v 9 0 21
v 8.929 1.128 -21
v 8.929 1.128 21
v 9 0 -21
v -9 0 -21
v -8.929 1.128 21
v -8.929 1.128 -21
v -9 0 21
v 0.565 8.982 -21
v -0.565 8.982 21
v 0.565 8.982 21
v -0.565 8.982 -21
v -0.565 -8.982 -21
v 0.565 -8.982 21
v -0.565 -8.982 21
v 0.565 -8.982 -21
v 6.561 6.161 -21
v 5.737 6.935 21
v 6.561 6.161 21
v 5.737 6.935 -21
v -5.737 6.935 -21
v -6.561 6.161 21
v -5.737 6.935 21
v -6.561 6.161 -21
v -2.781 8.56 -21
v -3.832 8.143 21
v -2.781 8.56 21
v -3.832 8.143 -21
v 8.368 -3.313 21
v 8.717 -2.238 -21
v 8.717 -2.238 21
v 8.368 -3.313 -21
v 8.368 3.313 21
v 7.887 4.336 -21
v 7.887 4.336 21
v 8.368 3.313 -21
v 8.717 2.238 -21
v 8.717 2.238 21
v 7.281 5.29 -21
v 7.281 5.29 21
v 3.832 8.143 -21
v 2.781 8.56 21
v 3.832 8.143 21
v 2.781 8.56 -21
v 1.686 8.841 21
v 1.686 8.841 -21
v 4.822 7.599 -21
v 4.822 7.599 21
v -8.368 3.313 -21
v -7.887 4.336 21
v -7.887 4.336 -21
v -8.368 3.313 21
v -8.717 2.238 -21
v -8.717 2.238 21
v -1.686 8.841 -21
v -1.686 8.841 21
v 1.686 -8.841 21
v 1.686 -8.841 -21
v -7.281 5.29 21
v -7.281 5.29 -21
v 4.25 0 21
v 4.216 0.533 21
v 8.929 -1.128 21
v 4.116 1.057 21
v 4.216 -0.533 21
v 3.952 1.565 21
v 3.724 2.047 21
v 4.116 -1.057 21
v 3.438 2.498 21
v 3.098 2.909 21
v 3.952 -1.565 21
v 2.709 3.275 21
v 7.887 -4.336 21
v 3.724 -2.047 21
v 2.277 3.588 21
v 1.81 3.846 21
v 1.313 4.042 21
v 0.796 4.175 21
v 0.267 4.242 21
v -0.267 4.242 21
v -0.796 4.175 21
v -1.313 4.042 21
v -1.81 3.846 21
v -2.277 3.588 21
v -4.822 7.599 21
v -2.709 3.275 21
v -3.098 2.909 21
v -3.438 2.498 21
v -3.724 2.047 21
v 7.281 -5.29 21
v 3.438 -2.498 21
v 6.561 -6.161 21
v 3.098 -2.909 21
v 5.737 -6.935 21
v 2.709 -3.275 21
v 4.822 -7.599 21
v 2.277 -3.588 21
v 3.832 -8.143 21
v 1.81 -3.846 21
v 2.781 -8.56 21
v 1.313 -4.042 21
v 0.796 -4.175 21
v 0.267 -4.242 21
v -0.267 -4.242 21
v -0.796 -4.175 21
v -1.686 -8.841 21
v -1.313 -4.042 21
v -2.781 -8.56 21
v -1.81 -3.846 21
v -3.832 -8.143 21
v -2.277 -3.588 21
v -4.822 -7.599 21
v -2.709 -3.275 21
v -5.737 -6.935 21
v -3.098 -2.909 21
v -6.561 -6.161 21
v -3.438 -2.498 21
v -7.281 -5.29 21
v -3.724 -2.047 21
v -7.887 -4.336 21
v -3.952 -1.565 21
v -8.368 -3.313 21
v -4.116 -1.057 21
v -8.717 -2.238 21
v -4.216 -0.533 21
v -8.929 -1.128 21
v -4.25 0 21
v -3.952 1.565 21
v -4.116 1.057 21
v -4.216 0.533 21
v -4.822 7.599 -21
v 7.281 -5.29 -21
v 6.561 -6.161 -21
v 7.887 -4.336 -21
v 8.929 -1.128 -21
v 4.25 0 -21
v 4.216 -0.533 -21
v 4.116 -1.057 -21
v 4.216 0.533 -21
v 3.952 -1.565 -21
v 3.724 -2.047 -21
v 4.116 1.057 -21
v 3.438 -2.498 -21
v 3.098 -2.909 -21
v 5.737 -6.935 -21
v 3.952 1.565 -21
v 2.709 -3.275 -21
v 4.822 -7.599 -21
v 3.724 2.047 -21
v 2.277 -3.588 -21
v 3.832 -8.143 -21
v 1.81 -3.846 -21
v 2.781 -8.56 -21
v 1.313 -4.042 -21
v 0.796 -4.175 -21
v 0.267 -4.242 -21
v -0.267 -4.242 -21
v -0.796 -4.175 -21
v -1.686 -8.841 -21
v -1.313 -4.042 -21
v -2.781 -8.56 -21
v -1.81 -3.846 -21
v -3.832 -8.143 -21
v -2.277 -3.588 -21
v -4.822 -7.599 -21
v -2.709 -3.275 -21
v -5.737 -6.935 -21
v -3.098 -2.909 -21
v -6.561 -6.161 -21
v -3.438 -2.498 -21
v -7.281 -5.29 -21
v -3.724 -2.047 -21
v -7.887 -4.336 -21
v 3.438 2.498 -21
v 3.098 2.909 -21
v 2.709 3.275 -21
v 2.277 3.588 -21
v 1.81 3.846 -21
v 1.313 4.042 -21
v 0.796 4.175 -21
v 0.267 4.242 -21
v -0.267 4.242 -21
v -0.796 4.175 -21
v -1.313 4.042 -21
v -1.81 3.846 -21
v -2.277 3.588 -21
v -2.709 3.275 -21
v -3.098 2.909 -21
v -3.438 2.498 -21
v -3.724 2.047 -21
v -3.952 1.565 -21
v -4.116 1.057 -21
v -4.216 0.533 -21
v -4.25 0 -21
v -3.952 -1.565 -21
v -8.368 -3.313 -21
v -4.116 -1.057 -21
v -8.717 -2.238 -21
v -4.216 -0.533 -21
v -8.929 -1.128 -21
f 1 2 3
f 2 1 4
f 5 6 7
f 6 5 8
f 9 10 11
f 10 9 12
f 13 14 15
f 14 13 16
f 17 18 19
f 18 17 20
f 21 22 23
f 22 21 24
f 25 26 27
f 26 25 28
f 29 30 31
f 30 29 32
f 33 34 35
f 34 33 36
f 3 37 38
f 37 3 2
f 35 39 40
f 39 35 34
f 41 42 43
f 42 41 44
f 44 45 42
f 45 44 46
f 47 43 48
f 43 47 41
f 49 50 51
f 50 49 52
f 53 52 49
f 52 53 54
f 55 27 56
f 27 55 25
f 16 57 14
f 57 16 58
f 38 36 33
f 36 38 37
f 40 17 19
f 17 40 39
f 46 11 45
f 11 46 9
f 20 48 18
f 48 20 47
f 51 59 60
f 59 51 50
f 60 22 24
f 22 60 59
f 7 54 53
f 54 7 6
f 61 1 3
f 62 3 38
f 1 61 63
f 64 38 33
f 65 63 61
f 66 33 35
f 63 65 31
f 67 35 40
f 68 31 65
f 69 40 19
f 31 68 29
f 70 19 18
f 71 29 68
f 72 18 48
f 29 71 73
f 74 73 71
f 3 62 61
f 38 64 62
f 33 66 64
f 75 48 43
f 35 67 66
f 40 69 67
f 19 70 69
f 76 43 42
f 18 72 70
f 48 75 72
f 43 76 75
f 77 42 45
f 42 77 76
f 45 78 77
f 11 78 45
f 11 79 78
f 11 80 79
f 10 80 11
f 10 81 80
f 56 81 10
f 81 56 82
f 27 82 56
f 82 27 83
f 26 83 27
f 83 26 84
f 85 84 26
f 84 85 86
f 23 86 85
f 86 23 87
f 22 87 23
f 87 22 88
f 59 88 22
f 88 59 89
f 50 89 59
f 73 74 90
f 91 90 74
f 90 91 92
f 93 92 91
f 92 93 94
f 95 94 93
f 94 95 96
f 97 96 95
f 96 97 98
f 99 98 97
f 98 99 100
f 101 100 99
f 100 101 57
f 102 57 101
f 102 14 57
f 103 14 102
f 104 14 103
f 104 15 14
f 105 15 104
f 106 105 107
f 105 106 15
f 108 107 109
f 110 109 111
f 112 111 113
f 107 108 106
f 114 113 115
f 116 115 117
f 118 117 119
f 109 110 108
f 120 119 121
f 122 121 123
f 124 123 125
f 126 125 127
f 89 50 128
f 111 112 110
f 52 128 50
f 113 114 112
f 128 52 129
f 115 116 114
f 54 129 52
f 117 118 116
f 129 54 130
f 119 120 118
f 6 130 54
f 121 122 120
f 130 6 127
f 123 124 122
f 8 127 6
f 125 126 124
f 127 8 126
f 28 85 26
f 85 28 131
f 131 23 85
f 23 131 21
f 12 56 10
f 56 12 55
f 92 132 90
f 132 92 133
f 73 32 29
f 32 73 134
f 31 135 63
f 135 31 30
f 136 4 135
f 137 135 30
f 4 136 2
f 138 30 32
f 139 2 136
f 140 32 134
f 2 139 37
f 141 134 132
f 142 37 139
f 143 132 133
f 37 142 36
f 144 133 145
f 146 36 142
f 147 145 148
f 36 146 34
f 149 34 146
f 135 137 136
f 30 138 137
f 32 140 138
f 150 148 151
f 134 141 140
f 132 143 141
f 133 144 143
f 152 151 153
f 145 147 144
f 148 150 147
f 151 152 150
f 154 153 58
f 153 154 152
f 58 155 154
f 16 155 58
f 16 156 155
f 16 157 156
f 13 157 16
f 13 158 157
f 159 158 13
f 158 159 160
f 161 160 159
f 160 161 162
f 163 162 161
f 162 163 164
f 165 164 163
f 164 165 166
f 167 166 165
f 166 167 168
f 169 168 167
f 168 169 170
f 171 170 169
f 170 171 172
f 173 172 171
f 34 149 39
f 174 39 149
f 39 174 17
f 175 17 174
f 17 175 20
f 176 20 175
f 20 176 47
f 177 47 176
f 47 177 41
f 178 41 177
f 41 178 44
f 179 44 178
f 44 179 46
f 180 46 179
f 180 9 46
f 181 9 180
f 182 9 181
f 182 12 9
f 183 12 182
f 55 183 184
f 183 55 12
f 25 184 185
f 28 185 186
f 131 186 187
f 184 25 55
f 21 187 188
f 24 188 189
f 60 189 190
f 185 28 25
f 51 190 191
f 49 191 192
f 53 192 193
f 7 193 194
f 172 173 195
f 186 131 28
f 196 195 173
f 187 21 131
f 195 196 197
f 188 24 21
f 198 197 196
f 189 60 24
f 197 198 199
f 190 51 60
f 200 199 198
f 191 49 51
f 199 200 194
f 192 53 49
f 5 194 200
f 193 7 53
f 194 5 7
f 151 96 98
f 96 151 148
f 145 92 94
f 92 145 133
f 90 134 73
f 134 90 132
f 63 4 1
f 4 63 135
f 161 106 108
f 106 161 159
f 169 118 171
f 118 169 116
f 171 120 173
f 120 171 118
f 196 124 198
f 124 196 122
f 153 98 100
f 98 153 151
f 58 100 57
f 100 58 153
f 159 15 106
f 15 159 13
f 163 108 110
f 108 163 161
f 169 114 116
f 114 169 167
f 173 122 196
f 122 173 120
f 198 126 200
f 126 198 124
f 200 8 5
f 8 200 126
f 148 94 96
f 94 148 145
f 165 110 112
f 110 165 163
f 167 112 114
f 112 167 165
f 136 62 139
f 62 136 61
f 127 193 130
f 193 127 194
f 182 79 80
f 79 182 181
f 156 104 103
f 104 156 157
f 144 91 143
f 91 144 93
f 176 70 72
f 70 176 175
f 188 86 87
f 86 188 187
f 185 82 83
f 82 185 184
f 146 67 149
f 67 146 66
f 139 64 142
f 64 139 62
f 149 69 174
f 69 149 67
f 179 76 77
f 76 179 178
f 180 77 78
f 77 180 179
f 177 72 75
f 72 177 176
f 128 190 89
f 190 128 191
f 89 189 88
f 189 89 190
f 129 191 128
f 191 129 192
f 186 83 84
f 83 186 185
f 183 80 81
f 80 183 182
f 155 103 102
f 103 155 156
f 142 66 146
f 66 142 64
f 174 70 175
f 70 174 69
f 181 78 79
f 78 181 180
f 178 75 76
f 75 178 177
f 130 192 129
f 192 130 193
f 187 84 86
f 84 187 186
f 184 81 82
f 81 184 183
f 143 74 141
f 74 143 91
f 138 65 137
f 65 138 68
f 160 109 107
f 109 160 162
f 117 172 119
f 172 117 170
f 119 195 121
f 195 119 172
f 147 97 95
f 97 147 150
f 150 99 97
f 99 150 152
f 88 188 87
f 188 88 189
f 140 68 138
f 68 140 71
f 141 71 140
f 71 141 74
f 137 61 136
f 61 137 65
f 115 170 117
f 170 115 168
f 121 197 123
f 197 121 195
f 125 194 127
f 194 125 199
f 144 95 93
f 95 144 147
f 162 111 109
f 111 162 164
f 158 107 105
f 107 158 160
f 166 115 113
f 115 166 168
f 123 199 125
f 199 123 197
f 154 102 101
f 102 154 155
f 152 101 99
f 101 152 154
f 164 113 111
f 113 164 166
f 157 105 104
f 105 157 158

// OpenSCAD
$fn = 50;


difference() {
	union() {
		translate(v = [0, 0, -21.0000000000]) {
			cylinder(h = 42, r = 9.0000000000);
		}
	}
	union() {
		translate(v = [0, 0, -100.0000000000]) {
			cylinder(h = 200, r = 4.2500000000);
		}
	}
}
